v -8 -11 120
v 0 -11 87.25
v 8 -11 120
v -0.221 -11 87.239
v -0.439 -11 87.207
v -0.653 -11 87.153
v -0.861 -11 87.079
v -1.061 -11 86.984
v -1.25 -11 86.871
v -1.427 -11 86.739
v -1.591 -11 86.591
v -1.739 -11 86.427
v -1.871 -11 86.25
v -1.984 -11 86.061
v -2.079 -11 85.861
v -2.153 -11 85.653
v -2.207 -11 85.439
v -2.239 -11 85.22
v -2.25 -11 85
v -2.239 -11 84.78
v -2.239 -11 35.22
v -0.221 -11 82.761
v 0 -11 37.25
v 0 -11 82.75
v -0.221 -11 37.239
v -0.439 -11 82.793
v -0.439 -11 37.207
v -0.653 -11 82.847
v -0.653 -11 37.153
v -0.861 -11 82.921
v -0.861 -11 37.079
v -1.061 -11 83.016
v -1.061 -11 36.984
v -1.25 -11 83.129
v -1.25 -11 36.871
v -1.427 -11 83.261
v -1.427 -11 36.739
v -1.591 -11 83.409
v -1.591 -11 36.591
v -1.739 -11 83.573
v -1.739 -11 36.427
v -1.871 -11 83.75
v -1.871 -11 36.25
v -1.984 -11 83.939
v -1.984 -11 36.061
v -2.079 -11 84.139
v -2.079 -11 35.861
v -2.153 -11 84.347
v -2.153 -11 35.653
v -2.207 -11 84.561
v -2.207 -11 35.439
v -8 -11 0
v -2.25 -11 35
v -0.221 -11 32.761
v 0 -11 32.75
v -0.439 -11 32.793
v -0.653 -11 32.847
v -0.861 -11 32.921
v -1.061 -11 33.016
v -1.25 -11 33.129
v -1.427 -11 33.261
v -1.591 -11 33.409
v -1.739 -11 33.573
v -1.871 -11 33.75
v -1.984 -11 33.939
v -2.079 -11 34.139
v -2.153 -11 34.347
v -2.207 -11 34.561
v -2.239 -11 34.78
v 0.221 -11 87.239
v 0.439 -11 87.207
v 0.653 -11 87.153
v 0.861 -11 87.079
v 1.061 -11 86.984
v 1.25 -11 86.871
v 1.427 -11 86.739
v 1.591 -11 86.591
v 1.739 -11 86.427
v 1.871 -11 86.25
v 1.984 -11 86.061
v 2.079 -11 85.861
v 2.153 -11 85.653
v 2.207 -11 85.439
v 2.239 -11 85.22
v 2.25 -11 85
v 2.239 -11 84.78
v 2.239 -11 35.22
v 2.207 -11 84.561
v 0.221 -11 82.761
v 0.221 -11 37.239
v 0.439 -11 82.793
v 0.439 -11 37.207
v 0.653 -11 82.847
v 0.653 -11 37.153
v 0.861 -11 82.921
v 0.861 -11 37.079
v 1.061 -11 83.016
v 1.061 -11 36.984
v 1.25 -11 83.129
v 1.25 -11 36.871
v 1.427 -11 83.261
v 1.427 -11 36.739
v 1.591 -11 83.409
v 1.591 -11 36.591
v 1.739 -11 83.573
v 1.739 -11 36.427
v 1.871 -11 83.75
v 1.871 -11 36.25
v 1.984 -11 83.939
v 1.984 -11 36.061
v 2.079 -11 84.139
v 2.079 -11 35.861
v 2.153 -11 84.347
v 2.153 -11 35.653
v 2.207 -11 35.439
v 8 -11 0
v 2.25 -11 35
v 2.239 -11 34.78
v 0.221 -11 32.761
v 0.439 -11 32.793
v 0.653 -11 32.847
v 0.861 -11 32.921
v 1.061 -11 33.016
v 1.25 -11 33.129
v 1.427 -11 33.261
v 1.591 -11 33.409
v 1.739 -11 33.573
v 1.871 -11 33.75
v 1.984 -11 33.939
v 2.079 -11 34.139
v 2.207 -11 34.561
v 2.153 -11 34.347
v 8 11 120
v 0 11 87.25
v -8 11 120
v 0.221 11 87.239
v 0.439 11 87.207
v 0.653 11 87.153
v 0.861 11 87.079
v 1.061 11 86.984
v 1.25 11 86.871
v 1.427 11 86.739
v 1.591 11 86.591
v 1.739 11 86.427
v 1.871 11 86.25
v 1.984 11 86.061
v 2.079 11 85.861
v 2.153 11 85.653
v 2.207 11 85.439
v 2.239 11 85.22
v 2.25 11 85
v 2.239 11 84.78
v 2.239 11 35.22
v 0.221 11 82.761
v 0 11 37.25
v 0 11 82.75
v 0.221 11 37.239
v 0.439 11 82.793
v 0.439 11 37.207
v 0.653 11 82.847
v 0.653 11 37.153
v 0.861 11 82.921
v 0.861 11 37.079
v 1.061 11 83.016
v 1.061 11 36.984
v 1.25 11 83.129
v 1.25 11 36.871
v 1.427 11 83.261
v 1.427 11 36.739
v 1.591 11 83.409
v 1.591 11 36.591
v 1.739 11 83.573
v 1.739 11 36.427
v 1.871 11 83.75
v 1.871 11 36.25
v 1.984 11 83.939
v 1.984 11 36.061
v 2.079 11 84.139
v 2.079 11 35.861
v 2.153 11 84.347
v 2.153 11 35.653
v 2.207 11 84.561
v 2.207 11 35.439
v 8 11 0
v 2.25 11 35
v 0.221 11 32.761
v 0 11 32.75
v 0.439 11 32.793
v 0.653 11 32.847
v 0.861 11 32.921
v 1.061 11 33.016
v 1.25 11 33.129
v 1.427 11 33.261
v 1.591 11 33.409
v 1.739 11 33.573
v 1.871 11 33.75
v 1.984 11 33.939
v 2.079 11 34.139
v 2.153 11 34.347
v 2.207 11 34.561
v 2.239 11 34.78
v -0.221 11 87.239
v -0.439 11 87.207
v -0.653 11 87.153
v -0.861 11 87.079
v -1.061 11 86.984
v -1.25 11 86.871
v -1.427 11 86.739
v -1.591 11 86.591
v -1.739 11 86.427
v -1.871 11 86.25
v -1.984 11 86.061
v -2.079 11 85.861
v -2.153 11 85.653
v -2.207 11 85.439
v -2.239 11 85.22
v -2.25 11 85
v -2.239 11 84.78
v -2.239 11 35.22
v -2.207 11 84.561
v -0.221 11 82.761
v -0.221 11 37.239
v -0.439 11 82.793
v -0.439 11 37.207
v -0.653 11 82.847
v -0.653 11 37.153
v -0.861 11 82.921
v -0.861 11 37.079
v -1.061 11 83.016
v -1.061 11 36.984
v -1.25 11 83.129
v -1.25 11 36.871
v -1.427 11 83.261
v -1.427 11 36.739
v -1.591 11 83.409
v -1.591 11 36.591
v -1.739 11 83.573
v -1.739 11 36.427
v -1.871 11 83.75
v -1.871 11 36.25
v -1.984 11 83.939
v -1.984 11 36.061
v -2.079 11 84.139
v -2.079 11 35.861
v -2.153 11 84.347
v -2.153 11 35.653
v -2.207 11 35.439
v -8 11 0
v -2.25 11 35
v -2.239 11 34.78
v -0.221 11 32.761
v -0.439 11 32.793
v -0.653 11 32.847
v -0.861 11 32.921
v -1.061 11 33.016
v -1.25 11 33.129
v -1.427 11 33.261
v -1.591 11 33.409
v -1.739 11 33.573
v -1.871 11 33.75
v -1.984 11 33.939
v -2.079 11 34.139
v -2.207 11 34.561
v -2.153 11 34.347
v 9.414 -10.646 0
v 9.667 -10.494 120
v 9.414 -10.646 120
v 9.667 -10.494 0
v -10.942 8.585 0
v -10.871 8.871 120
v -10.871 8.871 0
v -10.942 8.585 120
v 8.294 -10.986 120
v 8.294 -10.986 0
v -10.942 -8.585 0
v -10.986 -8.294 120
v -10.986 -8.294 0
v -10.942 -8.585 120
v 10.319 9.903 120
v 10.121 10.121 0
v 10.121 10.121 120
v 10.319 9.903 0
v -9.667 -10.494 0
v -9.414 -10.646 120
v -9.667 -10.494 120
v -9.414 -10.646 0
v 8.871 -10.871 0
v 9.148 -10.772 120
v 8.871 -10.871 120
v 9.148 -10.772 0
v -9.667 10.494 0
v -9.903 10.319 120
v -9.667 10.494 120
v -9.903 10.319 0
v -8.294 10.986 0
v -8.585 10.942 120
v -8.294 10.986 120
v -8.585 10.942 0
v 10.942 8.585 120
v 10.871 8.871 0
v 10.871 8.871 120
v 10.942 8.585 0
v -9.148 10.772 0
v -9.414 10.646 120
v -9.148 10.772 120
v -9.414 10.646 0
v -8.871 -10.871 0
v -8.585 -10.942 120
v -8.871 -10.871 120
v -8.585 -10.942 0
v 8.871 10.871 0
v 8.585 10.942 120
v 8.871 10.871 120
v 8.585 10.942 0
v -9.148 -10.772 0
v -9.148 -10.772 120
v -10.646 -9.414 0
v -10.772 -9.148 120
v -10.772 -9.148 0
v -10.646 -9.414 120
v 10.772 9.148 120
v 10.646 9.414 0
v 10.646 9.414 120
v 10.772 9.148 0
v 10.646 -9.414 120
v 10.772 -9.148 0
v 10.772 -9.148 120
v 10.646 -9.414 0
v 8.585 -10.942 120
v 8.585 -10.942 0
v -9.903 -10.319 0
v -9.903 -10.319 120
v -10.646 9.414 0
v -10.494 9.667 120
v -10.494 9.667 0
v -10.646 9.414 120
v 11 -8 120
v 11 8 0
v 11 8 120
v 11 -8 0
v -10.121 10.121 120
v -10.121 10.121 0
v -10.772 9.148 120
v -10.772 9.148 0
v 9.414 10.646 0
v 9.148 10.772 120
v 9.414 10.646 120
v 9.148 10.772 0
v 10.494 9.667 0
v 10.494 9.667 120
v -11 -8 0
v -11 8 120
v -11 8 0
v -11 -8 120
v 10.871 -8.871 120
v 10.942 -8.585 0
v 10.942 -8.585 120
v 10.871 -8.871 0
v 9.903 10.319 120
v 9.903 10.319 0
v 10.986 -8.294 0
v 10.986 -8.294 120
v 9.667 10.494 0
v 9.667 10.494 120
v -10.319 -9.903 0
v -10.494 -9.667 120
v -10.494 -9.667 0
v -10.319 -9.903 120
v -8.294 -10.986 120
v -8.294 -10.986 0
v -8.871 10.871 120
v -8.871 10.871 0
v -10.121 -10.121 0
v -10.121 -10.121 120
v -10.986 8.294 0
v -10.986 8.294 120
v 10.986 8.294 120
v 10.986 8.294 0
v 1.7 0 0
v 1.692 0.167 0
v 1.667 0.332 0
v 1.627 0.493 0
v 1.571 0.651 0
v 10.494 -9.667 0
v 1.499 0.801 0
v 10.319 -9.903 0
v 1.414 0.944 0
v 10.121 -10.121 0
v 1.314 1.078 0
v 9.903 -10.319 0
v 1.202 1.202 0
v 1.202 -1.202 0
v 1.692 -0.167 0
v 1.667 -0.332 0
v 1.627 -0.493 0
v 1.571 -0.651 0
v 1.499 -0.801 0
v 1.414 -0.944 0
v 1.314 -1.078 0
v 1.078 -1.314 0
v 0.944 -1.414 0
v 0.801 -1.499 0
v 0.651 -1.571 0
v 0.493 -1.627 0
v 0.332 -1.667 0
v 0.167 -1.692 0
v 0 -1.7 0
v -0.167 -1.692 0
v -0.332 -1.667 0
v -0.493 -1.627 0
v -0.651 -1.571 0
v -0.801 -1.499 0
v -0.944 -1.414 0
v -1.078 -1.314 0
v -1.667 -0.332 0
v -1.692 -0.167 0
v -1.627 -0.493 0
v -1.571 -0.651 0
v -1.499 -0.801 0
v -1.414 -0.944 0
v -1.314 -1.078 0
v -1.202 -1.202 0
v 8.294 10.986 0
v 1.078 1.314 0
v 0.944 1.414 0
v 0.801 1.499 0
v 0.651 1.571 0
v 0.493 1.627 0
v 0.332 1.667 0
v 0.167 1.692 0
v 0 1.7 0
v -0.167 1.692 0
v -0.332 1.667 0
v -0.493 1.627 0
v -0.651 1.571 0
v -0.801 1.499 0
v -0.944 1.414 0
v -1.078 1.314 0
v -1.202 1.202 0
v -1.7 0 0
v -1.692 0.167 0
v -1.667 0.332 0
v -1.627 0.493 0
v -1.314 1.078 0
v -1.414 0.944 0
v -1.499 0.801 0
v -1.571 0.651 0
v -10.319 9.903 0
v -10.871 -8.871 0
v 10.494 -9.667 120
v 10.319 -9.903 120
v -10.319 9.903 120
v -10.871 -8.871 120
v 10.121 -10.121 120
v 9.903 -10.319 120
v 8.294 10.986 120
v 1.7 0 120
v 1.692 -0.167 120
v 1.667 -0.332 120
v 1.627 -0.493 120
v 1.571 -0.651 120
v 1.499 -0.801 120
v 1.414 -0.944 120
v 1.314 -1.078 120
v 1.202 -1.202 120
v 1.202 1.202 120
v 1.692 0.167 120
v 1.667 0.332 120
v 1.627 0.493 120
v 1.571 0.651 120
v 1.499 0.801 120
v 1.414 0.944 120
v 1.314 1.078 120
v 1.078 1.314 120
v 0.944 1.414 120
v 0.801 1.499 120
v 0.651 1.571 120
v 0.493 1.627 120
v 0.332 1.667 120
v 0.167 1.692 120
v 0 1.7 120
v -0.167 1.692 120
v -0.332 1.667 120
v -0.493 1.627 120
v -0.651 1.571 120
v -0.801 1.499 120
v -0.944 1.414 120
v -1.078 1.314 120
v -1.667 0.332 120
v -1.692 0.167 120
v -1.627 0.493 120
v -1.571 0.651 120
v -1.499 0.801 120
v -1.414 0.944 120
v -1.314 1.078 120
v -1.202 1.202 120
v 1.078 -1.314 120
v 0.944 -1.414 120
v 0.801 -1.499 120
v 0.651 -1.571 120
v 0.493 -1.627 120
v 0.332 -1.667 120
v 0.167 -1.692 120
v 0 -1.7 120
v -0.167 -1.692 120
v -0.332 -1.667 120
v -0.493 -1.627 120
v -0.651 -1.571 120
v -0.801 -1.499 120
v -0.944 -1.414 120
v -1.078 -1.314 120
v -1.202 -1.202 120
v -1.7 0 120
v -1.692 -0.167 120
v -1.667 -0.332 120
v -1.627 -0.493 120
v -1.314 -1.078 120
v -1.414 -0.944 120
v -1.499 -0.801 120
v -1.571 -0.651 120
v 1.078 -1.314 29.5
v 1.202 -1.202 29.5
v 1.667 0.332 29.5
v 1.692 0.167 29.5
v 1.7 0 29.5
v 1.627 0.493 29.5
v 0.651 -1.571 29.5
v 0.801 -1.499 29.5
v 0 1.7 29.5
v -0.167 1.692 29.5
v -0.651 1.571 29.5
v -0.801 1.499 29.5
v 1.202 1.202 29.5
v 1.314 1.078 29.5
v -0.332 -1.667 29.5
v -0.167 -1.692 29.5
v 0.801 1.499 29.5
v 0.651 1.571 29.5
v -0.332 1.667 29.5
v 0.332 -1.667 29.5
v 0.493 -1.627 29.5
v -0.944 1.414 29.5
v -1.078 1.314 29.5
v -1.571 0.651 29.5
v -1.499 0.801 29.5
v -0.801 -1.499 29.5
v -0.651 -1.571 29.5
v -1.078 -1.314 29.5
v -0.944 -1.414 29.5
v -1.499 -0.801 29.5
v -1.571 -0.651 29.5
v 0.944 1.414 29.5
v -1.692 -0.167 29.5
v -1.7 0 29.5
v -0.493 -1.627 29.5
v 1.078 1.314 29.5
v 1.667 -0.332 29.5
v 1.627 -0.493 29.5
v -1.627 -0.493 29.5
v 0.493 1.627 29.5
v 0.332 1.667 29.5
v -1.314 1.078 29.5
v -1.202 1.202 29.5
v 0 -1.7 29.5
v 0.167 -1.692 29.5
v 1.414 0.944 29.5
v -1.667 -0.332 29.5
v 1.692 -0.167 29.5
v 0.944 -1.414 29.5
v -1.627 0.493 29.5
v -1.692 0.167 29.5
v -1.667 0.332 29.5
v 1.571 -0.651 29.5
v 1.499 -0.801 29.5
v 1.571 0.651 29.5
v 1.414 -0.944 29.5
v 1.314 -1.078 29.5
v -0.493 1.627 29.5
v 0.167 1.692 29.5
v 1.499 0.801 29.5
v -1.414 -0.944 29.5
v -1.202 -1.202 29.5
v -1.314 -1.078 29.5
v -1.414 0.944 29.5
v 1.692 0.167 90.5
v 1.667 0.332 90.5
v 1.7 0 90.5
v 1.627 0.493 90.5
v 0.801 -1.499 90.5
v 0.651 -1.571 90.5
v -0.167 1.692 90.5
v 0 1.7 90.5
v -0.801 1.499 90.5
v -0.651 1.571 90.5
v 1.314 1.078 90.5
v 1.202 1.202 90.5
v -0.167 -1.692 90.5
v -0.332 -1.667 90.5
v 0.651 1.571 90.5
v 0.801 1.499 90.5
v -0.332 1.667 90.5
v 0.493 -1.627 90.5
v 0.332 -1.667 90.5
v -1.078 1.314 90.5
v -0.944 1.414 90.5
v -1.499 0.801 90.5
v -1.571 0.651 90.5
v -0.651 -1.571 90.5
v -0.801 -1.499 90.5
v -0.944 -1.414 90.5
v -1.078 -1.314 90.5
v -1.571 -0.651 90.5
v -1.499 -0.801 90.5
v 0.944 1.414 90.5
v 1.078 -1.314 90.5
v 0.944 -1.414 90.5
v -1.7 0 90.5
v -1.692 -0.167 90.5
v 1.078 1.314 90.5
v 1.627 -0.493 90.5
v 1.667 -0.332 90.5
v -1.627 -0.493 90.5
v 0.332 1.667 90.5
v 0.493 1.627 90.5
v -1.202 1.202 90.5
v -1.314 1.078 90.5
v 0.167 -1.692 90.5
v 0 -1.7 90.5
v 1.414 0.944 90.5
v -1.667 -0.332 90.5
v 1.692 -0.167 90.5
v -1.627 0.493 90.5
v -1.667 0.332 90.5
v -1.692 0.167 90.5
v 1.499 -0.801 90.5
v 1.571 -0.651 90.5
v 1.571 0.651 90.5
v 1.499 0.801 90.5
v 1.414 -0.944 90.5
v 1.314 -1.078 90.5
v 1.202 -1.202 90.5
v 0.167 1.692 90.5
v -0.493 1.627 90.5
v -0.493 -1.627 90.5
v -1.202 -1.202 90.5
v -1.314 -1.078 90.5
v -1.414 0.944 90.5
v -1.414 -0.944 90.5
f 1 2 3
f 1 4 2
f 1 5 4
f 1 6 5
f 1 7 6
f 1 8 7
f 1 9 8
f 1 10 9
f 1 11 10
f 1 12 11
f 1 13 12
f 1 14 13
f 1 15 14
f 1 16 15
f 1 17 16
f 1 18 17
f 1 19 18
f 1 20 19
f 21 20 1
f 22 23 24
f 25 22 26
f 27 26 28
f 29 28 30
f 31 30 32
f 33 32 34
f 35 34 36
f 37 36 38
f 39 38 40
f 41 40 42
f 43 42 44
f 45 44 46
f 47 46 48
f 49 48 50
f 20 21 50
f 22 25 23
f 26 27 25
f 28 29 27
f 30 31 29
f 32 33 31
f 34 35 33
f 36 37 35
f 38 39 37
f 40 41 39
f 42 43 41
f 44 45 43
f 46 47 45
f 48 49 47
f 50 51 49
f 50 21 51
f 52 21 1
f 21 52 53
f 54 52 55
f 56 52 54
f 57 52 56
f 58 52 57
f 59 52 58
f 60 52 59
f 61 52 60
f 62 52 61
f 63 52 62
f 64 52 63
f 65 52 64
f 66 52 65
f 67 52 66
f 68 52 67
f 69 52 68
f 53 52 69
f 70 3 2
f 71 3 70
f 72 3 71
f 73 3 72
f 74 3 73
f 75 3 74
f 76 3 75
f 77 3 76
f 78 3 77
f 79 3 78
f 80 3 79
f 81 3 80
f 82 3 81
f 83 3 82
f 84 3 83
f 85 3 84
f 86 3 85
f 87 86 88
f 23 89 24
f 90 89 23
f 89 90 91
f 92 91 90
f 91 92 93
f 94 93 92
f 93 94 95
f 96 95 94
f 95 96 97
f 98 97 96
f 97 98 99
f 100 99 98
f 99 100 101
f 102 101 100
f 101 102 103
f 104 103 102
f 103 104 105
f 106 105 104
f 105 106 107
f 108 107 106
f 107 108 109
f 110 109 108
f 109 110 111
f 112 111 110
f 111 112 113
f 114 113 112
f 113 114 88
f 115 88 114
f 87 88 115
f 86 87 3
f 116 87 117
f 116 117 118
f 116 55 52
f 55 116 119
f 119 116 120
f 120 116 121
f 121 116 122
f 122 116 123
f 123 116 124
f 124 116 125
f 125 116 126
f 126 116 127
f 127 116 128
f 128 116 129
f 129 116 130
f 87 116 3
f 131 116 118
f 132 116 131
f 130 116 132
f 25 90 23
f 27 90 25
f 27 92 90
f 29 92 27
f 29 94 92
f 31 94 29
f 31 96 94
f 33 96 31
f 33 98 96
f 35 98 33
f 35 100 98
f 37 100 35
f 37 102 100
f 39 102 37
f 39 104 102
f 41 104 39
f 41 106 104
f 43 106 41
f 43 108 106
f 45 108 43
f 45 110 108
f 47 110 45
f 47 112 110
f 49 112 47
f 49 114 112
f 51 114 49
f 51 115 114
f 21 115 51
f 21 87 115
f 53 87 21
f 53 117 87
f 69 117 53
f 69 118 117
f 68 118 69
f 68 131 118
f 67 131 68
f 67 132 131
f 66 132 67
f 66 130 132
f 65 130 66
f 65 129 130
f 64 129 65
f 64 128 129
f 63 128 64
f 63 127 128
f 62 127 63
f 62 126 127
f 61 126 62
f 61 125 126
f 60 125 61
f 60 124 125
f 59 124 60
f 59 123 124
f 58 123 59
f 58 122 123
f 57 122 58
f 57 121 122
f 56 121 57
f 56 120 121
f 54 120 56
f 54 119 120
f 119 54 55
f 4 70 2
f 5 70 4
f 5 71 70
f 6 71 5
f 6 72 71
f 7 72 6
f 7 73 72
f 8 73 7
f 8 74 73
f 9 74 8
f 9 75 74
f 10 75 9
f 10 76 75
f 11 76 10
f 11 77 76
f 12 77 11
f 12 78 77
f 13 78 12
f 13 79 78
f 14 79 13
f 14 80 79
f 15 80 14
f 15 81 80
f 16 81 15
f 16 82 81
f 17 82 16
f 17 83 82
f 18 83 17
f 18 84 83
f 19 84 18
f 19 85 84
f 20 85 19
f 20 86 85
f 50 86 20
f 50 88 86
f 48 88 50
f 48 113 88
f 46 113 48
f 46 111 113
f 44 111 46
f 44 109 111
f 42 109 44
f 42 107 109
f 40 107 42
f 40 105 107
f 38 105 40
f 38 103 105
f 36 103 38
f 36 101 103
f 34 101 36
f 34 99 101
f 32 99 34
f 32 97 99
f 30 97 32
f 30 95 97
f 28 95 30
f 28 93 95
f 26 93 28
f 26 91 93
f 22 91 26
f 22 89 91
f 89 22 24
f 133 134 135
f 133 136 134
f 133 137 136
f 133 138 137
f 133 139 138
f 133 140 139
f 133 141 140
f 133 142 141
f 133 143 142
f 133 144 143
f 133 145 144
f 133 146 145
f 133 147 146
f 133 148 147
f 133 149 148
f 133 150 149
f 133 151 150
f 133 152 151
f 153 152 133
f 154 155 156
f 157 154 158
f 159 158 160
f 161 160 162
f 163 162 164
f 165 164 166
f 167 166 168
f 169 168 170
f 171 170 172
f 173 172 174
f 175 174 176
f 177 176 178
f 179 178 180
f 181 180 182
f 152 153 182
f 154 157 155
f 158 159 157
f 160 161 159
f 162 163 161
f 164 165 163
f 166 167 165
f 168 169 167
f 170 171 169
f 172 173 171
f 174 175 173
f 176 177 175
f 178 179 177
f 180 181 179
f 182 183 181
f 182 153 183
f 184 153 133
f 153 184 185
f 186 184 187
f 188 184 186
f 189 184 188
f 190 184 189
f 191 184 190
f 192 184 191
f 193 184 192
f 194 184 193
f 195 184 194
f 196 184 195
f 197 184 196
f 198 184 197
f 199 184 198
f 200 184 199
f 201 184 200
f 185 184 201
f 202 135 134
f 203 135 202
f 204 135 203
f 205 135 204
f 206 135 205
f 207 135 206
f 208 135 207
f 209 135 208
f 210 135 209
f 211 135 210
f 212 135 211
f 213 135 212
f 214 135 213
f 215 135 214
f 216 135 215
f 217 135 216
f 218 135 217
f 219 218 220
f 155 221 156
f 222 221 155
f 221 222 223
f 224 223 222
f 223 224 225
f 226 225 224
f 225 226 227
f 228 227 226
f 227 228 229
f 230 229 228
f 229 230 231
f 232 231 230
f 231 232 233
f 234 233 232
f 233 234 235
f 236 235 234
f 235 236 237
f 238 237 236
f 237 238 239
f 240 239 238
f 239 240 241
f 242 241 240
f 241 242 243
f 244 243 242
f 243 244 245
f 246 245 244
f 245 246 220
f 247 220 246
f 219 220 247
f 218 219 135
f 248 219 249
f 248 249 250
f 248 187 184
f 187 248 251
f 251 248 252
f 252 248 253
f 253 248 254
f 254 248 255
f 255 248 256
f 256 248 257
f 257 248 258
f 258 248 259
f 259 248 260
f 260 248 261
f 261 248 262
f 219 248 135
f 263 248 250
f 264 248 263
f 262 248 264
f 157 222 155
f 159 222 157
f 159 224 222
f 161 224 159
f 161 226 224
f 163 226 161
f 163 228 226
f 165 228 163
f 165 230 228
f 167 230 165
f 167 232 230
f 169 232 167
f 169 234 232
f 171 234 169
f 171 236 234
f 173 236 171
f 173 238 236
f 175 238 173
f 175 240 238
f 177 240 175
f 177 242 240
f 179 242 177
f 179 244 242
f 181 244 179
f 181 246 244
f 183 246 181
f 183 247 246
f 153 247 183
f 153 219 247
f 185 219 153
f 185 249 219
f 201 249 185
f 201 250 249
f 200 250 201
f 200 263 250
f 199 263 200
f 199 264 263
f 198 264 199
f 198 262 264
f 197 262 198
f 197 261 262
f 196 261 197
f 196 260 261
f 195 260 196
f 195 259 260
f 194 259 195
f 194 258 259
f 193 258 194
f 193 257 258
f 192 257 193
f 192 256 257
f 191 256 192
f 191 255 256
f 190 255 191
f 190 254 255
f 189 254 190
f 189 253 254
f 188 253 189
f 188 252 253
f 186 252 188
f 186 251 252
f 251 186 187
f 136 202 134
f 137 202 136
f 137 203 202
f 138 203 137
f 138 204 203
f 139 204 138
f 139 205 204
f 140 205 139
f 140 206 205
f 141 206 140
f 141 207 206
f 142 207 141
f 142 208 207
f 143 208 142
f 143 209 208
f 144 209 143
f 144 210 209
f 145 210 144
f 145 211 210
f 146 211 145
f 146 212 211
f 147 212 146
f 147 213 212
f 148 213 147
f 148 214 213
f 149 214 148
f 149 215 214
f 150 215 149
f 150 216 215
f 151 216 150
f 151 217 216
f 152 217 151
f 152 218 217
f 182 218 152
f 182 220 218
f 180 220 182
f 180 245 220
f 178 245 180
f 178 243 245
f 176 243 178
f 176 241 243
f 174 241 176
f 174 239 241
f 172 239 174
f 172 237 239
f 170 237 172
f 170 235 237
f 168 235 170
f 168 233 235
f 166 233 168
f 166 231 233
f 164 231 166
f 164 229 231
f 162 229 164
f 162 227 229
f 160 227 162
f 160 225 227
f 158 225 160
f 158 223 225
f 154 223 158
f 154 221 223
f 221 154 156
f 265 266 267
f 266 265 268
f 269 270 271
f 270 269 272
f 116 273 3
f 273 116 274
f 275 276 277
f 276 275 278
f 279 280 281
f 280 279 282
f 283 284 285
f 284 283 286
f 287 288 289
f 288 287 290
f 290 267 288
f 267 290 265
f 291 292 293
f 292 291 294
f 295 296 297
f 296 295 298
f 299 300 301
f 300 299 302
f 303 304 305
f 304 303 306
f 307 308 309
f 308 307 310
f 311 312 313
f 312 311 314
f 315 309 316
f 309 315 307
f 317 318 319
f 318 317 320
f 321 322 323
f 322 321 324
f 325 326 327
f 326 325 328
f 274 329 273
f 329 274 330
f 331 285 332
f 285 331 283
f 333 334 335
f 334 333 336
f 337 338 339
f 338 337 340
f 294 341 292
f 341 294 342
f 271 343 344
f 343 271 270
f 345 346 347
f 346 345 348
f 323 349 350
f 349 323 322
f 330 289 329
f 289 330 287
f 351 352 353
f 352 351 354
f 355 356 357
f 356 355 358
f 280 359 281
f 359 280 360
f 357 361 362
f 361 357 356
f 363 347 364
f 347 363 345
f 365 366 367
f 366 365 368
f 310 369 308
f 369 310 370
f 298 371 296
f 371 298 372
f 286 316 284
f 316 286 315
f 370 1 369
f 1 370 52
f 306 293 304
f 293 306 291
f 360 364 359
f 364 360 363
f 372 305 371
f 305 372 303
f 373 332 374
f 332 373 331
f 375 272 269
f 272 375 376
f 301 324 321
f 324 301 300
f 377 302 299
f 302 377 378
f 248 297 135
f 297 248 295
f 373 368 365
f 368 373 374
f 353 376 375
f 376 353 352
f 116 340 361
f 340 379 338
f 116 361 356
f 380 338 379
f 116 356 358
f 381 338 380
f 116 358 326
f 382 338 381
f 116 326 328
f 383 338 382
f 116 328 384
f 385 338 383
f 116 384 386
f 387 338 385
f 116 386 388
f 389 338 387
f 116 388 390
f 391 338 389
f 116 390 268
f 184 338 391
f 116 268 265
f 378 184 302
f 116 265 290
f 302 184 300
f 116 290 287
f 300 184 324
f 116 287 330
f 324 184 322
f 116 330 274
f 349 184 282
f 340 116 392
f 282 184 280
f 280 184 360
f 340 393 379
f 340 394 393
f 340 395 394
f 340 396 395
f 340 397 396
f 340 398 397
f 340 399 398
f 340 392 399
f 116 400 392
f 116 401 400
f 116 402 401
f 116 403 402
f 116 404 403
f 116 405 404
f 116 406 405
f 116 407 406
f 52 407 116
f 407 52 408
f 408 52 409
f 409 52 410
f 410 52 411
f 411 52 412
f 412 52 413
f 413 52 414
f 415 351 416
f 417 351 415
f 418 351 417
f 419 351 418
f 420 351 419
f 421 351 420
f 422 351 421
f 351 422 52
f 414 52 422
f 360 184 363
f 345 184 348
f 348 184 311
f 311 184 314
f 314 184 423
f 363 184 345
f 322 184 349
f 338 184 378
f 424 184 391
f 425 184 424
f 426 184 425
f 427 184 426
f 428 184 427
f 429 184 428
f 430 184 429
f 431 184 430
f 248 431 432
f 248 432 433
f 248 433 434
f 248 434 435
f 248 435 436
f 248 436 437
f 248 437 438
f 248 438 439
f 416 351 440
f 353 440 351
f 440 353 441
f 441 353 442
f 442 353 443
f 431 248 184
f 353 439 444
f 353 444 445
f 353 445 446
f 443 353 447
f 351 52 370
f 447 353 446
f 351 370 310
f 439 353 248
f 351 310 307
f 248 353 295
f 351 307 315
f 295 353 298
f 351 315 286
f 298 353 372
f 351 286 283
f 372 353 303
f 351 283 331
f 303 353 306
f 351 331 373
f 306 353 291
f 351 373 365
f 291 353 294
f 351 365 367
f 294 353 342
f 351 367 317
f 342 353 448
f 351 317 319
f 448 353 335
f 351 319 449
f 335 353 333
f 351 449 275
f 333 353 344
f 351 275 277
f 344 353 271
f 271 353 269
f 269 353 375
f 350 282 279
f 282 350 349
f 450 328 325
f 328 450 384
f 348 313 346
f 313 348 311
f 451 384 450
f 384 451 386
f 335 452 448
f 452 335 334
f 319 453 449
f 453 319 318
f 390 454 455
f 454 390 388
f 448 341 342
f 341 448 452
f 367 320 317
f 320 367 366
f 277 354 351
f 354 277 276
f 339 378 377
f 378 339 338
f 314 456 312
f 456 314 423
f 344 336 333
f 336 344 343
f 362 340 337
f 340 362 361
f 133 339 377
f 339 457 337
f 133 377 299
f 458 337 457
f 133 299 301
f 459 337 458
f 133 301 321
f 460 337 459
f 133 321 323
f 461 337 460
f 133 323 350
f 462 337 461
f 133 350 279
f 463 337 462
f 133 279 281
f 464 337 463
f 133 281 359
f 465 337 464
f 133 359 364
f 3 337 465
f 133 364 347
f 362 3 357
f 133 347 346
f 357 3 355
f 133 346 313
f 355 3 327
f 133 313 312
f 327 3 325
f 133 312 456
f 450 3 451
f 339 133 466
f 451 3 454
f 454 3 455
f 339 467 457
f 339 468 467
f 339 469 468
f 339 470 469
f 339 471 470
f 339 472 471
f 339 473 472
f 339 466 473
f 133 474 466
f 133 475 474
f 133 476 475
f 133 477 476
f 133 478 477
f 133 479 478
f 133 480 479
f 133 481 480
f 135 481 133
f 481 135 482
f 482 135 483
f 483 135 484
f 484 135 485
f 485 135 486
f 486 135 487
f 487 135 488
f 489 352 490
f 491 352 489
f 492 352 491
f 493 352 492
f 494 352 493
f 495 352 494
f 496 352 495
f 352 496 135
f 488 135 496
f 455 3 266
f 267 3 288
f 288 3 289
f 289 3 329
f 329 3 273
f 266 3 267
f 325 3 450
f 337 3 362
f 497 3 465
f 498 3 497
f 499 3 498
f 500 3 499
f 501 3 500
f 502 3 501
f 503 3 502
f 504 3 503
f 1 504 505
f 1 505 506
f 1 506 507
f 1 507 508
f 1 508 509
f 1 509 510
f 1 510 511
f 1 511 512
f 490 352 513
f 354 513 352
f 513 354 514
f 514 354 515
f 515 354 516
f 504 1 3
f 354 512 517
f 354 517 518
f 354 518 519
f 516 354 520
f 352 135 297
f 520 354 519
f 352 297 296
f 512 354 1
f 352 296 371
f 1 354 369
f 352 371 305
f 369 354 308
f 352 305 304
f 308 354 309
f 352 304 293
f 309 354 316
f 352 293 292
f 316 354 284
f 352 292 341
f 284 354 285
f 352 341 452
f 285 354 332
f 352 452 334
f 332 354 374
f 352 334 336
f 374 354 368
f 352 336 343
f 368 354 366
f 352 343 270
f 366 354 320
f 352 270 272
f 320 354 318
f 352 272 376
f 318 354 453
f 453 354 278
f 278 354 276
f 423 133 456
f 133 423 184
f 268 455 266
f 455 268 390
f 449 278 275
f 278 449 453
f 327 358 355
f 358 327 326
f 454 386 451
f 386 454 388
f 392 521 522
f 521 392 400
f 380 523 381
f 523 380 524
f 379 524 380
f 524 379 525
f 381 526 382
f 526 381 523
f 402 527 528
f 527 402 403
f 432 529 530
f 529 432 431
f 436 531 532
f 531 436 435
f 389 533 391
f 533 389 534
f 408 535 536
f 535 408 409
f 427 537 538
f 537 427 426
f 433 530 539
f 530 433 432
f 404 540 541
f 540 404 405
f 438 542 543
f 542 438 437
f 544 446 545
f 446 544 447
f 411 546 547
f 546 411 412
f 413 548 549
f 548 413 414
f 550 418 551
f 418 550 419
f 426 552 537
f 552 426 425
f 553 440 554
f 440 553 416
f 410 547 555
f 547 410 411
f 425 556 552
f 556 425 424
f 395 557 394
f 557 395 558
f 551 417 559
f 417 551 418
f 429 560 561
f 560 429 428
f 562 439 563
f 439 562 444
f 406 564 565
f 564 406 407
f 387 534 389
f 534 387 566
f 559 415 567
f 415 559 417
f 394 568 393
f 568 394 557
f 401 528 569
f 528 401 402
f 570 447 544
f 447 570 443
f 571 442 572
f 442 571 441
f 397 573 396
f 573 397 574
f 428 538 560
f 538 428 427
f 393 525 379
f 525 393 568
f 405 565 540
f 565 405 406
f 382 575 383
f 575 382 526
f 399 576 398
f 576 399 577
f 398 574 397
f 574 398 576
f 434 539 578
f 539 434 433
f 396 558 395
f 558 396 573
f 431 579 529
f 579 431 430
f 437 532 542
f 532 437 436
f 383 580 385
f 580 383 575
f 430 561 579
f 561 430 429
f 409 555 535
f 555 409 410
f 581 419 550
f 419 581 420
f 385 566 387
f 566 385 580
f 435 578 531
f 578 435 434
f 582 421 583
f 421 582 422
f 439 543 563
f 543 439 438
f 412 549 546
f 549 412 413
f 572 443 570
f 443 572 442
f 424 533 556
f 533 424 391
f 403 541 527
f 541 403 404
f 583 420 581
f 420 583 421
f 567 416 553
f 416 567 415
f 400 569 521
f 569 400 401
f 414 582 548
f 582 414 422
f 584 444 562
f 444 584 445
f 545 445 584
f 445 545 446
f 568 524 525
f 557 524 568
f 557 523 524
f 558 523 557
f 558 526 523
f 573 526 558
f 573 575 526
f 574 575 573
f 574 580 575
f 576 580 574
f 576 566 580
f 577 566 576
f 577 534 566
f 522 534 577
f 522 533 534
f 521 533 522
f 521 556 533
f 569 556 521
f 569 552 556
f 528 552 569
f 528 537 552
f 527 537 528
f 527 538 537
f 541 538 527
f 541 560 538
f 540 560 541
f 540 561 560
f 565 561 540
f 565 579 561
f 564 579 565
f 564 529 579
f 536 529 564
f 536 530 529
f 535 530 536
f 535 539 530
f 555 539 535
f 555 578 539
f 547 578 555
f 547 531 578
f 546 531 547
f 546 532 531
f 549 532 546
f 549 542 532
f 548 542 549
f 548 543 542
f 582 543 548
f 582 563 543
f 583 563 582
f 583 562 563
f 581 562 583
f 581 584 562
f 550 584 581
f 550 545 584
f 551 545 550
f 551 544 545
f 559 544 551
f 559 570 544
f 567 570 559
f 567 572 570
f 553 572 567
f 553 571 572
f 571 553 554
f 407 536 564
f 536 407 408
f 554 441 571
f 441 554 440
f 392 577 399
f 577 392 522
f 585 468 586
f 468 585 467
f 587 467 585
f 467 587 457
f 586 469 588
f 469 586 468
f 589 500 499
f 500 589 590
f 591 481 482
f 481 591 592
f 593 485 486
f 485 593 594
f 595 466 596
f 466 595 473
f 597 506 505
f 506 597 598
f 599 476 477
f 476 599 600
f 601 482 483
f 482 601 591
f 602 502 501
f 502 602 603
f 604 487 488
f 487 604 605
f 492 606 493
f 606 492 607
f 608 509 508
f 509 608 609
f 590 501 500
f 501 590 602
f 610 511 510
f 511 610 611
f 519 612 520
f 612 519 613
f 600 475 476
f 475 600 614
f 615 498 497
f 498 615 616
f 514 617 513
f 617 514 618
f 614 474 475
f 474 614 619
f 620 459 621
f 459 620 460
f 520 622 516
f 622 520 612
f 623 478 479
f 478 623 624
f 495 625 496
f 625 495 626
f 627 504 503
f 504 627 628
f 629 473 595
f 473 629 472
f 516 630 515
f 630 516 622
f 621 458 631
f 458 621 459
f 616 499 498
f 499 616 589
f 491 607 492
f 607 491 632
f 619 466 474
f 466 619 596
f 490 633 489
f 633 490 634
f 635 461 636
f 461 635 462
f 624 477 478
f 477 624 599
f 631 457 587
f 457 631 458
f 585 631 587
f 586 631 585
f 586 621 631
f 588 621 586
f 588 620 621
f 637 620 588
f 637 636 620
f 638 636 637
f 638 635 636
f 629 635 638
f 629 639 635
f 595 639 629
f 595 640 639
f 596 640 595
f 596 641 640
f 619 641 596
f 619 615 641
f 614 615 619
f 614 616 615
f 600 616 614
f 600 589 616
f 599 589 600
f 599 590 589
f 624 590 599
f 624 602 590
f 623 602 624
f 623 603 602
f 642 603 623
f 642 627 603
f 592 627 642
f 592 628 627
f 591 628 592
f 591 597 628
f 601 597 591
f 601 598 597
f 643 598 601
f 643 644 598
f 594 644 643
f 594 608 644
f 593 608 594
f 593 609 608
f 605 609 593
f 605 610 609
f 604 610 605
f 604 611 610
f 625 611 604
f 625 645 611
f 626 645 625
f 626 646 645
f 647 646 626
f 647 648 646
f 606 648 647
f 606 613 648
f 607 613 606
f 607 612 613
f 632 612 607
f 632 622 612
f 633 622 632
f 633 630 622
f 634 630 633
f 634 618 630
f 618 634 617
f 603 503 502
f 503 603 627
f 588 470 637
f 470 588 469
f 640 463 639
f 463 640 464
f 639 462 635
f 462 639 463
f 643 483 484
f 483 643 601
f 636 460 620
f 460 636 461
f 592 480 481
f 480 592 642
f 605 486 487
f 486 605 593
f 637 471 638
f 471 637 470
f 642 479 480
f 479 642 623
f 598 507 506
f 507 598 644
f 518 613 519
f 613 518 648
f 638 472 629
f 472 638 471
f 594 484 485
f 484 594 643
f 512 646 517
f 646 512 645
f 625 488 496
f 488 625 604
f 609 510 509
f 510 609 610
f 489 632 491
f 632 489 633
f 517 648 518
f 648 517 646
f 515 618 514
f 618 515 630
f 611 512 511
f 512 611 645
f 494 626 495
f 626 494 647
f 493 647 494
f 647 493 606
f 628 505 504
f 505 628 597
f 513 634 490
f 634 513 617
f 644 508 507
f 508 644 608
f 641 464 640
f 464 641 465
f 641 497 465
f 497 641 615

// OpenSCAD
// file: common.scad
// KARAKURI shared parameters and helpers
// All dimensions in millimetres. Holes are printed undersize-safe:
// M3 through 3.4, M4 through 4.5, M2.5 through 2.9, quarter-inch 6.6.

$fn = 64;

m2_5 = 2.9;
m3 = 3.4;
m4 = 4.5;
quarter_inch = 6.6;

module rounded_plate(x, y, t, r = 8) {
    linear_extrude(t)
        offset(r = r) offset(delta = -r)
            square([x, y], center = true);
}

module hole(d, h) {
    translate([0, 0, -0.5]) cylinder(d = d, h = h + 1);
}

module slot(d, len, h) {
    translate([0, 0, -0.5])
        linear_extrude(h + 1)
            hull() {
                translate([-len / 2, 0]) circle(d = d);
                translate([ len / 2, 0]) circle(d = d);
            }
}

module four_holes(dx, dy, d, h) {
    for (sx = [-1, 1], sy = [-1, 1])
        translate([sx * dx / 2, sy * dy / 2, 0]) hole(d, h);
}
// main file
// Chest corner post, print 4. 120 mm tall, M4 tapped-by-bolt both ends,
// shoulder-side posts also expose the 50 mm M4 square pattern halfway
// up for the biaxial shoulder joints.
include <common.scad>

module chest_post() {
    difference() {
        linear_extrude(120) offset(r=3) offset(delta=-3) square([22, 22], center = true);
        translate([0, 0, -0.5]) cylinder(d = 3.4, h = 30);          // M4 self-thread bottom
        translate([0, 0, 90.5]) cylinder(d = 3.4, h = 30);          // top
        // side face shoulder square (use on the two front posts)
        for (z = [35, 85]) for (y = [-1, 1])
            translate([0, y * 25, z]) rotate([90, 0, 0]) translate([0,0,-14]) cylinder(d = m4, h = 28);
    }
}
chest_post();
